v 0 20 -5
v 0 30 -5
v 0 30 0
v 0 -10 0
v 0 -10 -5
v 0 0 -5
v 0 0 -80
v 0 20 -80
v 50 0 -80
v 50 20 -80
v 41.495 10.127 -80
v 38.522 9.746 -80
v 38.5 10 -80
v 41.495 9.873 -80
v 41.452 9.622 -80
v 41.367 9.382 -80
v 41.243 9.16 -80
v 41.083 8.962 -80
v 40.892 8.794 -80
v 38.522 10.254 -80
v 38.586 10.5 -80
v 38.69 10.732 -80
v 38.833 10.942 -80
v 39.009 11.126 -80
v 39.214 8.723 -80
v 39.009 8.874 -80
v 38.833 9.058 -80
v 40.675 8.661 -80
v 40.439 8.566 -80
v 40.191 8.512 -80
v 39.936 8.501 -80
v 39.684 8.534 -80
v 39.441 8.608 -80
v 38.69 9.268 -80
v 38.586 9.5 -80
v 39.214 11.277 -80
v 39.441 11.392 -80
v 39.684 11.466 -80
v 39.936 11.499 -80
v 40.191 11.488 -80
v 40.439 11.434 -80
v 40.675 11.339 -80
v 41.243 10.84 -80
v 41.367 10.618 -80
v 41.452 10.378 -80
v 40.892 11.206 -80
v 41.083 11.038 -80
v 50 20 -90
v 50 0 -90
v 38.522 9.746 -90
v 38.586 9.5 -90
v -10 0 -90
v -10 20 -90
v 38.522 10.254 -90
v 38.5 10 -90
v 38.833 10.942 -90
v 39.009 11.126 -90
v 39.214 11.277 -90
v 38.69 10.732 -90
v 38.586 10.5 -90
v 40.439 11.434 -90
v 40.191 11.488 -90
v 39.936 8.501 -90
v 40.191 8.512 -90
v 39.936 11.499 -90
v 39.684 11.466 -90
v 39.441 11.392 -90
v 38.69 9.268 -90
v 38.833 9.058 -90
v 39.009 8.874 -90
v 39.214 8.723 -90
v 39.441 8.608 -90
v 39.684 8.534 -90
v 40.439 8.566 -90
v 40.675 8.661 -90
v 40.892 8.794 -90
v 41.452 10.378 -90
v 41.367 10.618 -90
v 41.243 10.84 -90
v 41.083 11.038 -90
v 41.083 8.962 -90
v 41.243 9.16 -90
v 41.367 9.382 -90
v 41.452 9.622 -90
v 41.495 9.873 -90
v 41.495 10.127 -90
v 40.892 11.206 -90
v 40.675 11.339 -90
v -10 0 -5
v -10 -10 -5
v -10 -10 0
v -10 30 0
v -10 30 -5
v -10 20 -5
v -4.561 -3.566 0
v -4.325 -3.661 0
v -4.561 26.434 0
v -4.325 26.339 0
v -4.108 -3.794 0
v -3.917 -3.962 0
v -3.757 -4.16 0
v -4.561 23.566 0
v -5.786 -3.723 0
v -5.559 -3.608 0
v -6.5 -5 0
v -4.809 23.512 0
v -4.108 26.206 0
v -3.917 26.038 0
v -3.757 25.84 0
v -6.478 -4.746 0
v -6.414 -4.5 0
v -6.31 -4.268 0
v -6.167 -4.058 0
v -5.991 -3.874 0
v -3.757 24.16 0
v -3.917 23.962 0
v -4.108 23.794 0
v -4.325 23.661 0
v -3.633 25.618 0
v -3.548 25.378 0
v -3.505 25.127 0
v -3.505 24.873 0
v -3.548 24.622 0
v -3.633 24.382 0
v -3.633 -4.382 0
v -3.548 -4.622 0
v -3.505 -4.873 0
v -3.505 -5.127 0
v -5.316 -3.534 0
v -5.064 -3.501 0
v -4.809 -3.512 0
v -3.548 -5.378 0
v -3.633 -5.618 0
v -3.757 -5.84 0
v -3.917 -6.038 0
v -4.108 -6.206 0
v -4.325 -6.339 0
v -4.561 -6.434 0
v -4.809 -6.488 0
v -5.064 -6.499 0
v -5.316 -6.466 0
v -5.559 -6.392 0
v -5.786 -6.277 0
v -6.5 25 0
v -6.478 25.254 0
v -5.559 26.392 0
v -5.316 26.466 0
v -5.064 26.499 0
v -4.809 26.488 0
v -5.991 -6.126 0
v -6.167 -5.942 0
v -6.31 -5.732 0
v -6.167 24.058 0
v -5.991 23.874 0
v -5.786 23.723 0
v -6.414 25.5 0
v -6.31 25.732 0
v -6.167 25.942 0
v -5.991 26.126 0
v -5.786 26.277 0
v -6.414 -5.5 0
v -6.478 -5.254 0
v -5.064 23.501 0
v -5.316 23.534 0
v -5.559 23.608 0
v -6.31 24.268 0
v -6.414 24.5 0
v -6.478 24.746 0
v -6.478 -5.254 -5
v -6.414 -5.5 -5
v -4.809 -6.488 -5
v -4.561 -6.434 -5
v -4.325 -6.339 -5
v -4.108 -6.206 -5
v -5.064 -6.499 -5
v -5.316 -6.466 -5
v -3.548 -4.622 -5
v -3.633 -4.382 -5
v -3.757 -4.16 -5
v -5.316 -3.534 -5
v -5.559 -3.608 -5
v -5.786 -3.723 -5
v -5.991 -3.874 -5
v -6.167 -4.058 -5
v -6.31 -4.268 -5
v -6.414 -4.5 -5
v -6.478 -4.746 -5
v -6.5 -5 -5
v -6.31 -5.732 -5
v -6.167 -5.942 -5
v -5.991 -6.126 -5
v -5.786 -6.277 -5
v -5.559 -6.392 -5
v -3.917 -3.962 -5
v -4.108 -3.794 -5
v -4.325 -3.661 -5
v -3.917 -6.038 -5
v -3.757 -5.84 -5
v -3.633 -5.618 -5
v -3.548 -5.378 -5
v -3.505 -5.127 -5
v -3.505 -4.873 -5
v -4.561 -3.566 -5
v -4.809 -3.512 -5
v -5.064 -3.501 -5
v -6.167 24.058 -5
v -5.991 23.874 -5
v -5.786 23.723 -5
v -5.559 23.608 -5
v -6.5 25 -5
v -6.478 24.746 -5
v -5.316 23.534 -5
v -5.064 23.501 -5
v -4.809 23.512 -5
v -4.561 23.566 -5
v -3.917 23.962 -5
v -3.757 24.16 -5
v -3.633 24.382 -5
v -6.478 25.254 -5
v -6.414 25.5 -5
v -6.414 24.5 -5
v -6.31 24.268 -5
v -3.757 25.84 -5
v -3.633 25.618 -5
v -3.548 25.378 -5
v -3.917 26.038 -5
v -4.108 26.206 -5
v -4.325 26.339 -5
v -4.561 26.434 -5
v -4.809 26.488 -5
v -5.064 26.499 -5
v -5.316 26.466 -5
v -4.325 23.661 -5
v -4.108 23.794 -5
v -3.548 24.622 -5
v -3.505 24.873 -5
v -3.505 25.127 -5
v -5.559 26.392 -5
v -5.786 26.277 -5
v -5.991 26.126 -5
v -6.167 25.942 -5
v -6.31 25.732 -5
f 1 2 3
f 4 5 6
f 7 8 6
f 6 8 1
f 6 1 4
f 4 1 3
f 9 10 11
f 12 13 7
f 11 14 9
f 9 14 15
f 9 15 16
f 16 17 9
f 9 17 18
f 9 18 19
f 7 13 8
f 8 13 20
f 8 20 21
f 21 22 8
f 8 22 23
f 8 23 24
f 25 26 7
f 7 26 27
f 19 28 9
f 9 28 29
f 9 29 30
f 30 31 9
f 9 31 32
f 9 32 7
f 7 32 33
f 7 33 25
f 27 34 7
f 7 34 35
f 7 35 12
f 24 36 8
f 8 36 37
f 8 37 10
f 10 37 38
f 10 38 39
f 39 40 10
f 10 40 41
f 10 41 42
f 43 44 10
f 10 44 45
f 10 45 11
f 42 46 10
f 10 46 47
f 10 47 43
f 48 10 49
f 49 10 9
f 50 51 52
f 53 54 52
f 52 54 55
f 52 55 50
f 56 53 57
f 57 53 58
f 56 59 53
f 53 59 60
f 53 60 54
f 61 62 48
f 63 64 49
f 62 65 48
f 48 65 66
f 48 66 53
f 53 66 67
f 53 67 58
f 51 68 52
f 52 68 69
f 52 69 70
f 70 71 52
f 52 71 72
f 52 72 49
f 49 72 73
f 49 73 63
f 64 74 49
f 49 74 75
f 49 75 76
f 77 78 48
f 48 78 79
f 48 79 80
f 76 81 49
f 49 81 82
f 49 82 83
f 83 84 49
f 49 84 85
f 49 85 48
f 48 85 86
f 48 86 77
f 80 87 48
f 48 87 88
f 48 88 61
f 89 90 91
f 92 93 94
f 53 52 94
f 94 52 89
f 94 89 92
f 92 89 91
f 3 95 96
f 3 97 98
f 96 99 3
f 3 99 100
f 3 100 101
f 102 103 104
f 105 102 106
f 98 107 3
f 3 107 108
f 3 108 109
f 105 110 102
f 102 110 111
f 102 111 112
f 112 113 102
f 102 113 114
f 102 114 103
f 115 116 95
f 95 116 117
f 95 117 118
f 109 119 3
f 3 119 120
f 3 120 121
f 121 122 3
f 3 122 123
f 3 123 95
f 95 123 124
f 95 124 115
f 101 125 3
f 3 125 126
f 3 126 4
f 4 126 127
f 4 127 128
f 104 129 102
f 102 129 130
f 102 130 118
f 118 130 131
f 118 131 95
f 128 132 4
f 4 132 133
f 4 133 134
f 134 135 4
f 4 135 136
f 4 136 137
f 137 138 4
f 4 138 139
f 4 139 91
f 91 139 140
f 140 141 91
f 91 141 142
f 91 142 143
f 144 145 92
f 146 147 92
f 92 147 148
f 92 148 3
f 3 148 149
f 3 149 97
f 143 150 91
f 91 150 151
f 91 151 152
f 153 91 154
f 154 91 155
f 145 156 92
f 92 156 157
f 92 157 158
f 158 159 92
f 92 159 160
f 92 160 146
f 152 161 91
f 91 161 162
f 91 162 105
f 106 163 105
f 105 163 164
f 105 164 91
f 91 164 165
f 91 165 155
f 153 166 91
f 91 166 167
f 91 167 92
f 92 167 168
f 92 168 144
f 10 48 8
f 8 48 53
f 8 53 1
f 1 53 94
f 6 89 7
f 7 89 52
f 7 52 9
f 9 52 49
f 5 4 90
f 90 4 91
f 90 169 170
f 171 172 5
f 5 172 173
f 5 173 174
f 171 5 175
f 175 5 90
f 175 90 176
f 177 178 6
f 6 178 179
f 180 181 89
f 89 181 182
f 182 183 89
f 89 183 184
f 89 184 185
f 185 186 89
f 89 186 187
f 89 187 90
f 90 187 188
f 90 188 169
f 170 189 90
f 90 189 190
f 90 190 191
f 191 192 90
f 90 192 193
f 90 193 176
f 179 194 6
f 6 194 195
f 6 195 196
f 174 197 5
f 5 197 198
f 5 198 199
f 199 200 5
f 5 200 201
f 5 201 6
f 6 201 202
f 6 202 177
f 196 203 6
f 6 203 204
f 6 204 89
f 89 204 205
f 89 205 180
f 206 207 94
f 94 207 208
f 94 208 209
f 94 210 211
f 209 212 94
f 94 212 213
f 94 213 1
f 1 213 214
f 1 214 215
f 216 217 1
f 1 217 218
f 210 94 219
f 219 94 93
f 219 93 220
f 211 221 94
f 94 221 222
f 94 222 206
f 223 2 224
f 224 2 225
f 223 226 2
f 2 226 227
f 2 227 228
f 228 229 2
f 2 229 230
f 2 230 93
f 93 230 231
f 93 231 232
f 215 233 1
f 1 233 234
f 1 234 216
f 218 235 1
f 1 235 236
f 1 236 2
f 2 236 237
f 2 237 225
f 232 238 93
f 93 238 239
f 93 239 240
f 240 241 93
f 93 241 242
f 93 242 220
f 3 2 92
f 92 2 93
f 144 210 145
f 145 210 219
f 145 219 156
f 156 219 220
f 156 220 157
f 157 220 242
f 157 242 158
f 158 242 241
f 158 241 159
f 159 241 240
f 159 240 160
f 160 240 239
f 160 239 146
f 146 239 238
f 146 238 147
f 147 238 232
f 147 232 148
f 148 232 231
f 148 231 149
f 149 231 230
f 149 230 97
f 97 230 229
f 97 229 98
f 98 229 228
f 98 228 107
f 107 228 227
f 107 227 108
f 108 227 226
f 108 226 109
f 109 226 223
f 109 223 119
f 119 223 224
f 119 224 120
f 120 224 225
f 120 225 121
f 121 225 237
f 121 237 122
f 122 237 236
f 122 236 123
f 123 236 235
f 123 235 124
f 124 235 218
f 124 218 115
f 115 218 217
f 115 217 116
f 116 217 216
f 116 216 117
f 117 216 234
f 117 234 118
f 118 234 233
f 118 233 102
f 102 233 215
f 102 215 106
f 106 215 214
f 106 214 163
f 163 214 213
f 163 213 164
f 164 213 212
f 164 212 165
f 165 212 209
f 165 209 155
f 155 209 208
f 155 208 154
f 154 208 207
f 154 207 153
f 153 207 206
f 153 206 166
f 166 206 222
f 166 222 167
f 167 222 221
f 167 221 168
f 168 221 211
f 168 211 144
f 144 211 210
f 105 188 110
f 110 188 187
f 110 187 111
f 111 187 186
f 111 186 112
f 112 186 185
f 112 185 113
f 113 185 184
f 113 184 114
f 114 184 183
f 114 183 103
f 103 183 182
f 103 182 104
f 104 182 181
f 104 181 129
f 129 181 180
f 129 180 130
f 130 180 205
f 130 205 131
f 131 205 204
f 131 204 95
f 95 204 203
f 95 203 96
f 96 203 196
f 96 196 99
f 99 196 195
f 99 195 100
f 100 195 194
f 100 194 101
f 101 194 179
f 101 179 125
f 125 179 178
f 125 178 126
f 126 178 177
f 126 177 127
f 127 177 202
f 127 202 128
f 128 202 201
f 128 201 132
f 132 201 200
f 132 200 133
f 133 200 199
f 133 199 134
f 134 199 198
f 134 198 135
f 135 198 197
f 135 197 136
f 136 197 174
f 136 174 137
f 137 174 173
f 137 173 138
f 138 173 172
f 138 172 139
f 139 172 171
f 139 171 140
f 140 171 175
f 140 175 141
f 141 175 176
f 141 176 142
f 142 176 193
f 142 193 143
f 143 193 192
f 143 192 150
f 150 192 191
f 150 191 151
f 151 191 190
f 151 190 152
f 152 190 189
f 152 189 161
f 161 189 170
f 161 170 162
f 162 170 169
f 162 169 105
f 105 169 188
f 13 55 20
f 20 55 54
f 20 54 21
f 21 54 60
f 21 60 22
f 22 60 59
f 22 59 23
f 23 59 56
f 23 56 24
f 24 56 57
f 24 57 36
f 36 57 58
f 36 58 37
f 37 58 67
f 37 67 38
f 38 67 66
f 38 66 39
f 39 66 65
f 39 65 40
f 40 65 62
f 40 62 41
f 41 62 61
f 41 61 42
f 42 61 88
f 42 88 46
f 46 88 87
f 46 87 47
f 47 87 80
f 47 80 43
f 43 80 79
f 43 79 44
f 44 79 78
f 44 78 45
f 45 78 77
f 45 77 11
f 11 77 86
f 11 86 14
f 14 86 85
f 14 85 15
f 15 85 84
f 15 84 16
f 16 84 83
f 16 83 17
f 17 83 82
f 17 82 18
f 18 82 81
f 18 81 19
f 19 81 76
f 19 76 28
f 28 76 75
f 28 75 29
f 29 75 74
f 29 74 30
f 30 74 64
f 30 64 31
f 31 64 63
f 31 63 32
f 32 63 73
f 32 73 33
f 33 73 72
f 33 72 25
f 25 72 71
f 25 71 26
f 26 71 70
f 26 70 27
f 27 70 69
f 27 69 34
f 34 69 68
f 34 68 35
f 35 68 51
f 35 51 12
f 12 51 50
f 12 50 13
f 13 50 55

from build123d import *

# Parameters (mm, degrees)
Y_KSEKLIK_EKSTR_ZYON1_DEPTH      = 20
Y_KSEKLIK_EKSTR_ZYON2_DEPTH      = 10
Y_KSEKLIK_EKSTR_ZYON2_DEPTH_BACK = 30
IZIM2_W                          = 10
IZIM2_H                          = 5
IZIM3_R                          = 1.5
KES_EKSTR_ZYON1_DEPTH            = 10
IZIM4_R                          = 1.5
KES_EKSTR_ZYON2_DEPTH            = 10


with BuildPart() as part:
    # Çizim1 → Yükseklik-Ekstrüzyon1 (new body)
    with BuildSketch(Plane(origin=(0, 0, 0), x_dir=(1, 0, 0), z_dir=(0, 1, 0))):
        Polygon((-10, 0), (0, 0), (0, 80), (50, 80), (50, 90), (-10, 90), align=None)
    extrude(amount=Y_KSEKLIK_EKSTR_ZYON1_DEPTH)

    # Çizim2 → Yükseklik-Ekstrüzyon2 (add, two sides: drawn at the far end of the back side and taken through both)
    with BuildSketch(Plane(origin=(0, 20, 0), x_dir=(1, 0, 0), z_dir=(0, 1, 0)).offset(-Y_KSEKLIK_EKSTR_ZYON2_DEPTH_BACK)):
        with Locations((-5, 2.5)):
            Rectangle(IZIM2_W, IZIM2_H)
    extrude(amount=Y_KSEKLIK_EKSTR_ZYON2_DEPTH + Y_KSEKLIK_EKSTR_ZYON2_DEPTH_BACK)

    # Çizim3 → Kes-Ekstrüzyon1 (cut)
    with BuildSketch(Plane(origin=(0, 0, -5), x_dir=(-1, 0, 0), z_dir=(0, 0, -1))):
        with Locations((5, 25)):
            Circle(IZIM3_R)
        with Locations((5, -5)):
            Circle(IZIM3_R)
    extrude(amount=-KES_EKSTR_ZYON1_DEPTH, mode=Mode.SUBTRACT)

    # Çizim4 → Kes-Ekstrüzyon2 (cut)
    with BuildSketch(Plane(origin=(0, 0, -90), x_dir=(-1, 0, 0), z_dir=(0, 0, -1))):
        with Locations((-40, 10)):
            Circle(IZIM4_R)
    extrude(amount=-KES_EKSTR_ZYON2_DEPTH, mode=Mode.SUBTRACT)


solid = part.part
